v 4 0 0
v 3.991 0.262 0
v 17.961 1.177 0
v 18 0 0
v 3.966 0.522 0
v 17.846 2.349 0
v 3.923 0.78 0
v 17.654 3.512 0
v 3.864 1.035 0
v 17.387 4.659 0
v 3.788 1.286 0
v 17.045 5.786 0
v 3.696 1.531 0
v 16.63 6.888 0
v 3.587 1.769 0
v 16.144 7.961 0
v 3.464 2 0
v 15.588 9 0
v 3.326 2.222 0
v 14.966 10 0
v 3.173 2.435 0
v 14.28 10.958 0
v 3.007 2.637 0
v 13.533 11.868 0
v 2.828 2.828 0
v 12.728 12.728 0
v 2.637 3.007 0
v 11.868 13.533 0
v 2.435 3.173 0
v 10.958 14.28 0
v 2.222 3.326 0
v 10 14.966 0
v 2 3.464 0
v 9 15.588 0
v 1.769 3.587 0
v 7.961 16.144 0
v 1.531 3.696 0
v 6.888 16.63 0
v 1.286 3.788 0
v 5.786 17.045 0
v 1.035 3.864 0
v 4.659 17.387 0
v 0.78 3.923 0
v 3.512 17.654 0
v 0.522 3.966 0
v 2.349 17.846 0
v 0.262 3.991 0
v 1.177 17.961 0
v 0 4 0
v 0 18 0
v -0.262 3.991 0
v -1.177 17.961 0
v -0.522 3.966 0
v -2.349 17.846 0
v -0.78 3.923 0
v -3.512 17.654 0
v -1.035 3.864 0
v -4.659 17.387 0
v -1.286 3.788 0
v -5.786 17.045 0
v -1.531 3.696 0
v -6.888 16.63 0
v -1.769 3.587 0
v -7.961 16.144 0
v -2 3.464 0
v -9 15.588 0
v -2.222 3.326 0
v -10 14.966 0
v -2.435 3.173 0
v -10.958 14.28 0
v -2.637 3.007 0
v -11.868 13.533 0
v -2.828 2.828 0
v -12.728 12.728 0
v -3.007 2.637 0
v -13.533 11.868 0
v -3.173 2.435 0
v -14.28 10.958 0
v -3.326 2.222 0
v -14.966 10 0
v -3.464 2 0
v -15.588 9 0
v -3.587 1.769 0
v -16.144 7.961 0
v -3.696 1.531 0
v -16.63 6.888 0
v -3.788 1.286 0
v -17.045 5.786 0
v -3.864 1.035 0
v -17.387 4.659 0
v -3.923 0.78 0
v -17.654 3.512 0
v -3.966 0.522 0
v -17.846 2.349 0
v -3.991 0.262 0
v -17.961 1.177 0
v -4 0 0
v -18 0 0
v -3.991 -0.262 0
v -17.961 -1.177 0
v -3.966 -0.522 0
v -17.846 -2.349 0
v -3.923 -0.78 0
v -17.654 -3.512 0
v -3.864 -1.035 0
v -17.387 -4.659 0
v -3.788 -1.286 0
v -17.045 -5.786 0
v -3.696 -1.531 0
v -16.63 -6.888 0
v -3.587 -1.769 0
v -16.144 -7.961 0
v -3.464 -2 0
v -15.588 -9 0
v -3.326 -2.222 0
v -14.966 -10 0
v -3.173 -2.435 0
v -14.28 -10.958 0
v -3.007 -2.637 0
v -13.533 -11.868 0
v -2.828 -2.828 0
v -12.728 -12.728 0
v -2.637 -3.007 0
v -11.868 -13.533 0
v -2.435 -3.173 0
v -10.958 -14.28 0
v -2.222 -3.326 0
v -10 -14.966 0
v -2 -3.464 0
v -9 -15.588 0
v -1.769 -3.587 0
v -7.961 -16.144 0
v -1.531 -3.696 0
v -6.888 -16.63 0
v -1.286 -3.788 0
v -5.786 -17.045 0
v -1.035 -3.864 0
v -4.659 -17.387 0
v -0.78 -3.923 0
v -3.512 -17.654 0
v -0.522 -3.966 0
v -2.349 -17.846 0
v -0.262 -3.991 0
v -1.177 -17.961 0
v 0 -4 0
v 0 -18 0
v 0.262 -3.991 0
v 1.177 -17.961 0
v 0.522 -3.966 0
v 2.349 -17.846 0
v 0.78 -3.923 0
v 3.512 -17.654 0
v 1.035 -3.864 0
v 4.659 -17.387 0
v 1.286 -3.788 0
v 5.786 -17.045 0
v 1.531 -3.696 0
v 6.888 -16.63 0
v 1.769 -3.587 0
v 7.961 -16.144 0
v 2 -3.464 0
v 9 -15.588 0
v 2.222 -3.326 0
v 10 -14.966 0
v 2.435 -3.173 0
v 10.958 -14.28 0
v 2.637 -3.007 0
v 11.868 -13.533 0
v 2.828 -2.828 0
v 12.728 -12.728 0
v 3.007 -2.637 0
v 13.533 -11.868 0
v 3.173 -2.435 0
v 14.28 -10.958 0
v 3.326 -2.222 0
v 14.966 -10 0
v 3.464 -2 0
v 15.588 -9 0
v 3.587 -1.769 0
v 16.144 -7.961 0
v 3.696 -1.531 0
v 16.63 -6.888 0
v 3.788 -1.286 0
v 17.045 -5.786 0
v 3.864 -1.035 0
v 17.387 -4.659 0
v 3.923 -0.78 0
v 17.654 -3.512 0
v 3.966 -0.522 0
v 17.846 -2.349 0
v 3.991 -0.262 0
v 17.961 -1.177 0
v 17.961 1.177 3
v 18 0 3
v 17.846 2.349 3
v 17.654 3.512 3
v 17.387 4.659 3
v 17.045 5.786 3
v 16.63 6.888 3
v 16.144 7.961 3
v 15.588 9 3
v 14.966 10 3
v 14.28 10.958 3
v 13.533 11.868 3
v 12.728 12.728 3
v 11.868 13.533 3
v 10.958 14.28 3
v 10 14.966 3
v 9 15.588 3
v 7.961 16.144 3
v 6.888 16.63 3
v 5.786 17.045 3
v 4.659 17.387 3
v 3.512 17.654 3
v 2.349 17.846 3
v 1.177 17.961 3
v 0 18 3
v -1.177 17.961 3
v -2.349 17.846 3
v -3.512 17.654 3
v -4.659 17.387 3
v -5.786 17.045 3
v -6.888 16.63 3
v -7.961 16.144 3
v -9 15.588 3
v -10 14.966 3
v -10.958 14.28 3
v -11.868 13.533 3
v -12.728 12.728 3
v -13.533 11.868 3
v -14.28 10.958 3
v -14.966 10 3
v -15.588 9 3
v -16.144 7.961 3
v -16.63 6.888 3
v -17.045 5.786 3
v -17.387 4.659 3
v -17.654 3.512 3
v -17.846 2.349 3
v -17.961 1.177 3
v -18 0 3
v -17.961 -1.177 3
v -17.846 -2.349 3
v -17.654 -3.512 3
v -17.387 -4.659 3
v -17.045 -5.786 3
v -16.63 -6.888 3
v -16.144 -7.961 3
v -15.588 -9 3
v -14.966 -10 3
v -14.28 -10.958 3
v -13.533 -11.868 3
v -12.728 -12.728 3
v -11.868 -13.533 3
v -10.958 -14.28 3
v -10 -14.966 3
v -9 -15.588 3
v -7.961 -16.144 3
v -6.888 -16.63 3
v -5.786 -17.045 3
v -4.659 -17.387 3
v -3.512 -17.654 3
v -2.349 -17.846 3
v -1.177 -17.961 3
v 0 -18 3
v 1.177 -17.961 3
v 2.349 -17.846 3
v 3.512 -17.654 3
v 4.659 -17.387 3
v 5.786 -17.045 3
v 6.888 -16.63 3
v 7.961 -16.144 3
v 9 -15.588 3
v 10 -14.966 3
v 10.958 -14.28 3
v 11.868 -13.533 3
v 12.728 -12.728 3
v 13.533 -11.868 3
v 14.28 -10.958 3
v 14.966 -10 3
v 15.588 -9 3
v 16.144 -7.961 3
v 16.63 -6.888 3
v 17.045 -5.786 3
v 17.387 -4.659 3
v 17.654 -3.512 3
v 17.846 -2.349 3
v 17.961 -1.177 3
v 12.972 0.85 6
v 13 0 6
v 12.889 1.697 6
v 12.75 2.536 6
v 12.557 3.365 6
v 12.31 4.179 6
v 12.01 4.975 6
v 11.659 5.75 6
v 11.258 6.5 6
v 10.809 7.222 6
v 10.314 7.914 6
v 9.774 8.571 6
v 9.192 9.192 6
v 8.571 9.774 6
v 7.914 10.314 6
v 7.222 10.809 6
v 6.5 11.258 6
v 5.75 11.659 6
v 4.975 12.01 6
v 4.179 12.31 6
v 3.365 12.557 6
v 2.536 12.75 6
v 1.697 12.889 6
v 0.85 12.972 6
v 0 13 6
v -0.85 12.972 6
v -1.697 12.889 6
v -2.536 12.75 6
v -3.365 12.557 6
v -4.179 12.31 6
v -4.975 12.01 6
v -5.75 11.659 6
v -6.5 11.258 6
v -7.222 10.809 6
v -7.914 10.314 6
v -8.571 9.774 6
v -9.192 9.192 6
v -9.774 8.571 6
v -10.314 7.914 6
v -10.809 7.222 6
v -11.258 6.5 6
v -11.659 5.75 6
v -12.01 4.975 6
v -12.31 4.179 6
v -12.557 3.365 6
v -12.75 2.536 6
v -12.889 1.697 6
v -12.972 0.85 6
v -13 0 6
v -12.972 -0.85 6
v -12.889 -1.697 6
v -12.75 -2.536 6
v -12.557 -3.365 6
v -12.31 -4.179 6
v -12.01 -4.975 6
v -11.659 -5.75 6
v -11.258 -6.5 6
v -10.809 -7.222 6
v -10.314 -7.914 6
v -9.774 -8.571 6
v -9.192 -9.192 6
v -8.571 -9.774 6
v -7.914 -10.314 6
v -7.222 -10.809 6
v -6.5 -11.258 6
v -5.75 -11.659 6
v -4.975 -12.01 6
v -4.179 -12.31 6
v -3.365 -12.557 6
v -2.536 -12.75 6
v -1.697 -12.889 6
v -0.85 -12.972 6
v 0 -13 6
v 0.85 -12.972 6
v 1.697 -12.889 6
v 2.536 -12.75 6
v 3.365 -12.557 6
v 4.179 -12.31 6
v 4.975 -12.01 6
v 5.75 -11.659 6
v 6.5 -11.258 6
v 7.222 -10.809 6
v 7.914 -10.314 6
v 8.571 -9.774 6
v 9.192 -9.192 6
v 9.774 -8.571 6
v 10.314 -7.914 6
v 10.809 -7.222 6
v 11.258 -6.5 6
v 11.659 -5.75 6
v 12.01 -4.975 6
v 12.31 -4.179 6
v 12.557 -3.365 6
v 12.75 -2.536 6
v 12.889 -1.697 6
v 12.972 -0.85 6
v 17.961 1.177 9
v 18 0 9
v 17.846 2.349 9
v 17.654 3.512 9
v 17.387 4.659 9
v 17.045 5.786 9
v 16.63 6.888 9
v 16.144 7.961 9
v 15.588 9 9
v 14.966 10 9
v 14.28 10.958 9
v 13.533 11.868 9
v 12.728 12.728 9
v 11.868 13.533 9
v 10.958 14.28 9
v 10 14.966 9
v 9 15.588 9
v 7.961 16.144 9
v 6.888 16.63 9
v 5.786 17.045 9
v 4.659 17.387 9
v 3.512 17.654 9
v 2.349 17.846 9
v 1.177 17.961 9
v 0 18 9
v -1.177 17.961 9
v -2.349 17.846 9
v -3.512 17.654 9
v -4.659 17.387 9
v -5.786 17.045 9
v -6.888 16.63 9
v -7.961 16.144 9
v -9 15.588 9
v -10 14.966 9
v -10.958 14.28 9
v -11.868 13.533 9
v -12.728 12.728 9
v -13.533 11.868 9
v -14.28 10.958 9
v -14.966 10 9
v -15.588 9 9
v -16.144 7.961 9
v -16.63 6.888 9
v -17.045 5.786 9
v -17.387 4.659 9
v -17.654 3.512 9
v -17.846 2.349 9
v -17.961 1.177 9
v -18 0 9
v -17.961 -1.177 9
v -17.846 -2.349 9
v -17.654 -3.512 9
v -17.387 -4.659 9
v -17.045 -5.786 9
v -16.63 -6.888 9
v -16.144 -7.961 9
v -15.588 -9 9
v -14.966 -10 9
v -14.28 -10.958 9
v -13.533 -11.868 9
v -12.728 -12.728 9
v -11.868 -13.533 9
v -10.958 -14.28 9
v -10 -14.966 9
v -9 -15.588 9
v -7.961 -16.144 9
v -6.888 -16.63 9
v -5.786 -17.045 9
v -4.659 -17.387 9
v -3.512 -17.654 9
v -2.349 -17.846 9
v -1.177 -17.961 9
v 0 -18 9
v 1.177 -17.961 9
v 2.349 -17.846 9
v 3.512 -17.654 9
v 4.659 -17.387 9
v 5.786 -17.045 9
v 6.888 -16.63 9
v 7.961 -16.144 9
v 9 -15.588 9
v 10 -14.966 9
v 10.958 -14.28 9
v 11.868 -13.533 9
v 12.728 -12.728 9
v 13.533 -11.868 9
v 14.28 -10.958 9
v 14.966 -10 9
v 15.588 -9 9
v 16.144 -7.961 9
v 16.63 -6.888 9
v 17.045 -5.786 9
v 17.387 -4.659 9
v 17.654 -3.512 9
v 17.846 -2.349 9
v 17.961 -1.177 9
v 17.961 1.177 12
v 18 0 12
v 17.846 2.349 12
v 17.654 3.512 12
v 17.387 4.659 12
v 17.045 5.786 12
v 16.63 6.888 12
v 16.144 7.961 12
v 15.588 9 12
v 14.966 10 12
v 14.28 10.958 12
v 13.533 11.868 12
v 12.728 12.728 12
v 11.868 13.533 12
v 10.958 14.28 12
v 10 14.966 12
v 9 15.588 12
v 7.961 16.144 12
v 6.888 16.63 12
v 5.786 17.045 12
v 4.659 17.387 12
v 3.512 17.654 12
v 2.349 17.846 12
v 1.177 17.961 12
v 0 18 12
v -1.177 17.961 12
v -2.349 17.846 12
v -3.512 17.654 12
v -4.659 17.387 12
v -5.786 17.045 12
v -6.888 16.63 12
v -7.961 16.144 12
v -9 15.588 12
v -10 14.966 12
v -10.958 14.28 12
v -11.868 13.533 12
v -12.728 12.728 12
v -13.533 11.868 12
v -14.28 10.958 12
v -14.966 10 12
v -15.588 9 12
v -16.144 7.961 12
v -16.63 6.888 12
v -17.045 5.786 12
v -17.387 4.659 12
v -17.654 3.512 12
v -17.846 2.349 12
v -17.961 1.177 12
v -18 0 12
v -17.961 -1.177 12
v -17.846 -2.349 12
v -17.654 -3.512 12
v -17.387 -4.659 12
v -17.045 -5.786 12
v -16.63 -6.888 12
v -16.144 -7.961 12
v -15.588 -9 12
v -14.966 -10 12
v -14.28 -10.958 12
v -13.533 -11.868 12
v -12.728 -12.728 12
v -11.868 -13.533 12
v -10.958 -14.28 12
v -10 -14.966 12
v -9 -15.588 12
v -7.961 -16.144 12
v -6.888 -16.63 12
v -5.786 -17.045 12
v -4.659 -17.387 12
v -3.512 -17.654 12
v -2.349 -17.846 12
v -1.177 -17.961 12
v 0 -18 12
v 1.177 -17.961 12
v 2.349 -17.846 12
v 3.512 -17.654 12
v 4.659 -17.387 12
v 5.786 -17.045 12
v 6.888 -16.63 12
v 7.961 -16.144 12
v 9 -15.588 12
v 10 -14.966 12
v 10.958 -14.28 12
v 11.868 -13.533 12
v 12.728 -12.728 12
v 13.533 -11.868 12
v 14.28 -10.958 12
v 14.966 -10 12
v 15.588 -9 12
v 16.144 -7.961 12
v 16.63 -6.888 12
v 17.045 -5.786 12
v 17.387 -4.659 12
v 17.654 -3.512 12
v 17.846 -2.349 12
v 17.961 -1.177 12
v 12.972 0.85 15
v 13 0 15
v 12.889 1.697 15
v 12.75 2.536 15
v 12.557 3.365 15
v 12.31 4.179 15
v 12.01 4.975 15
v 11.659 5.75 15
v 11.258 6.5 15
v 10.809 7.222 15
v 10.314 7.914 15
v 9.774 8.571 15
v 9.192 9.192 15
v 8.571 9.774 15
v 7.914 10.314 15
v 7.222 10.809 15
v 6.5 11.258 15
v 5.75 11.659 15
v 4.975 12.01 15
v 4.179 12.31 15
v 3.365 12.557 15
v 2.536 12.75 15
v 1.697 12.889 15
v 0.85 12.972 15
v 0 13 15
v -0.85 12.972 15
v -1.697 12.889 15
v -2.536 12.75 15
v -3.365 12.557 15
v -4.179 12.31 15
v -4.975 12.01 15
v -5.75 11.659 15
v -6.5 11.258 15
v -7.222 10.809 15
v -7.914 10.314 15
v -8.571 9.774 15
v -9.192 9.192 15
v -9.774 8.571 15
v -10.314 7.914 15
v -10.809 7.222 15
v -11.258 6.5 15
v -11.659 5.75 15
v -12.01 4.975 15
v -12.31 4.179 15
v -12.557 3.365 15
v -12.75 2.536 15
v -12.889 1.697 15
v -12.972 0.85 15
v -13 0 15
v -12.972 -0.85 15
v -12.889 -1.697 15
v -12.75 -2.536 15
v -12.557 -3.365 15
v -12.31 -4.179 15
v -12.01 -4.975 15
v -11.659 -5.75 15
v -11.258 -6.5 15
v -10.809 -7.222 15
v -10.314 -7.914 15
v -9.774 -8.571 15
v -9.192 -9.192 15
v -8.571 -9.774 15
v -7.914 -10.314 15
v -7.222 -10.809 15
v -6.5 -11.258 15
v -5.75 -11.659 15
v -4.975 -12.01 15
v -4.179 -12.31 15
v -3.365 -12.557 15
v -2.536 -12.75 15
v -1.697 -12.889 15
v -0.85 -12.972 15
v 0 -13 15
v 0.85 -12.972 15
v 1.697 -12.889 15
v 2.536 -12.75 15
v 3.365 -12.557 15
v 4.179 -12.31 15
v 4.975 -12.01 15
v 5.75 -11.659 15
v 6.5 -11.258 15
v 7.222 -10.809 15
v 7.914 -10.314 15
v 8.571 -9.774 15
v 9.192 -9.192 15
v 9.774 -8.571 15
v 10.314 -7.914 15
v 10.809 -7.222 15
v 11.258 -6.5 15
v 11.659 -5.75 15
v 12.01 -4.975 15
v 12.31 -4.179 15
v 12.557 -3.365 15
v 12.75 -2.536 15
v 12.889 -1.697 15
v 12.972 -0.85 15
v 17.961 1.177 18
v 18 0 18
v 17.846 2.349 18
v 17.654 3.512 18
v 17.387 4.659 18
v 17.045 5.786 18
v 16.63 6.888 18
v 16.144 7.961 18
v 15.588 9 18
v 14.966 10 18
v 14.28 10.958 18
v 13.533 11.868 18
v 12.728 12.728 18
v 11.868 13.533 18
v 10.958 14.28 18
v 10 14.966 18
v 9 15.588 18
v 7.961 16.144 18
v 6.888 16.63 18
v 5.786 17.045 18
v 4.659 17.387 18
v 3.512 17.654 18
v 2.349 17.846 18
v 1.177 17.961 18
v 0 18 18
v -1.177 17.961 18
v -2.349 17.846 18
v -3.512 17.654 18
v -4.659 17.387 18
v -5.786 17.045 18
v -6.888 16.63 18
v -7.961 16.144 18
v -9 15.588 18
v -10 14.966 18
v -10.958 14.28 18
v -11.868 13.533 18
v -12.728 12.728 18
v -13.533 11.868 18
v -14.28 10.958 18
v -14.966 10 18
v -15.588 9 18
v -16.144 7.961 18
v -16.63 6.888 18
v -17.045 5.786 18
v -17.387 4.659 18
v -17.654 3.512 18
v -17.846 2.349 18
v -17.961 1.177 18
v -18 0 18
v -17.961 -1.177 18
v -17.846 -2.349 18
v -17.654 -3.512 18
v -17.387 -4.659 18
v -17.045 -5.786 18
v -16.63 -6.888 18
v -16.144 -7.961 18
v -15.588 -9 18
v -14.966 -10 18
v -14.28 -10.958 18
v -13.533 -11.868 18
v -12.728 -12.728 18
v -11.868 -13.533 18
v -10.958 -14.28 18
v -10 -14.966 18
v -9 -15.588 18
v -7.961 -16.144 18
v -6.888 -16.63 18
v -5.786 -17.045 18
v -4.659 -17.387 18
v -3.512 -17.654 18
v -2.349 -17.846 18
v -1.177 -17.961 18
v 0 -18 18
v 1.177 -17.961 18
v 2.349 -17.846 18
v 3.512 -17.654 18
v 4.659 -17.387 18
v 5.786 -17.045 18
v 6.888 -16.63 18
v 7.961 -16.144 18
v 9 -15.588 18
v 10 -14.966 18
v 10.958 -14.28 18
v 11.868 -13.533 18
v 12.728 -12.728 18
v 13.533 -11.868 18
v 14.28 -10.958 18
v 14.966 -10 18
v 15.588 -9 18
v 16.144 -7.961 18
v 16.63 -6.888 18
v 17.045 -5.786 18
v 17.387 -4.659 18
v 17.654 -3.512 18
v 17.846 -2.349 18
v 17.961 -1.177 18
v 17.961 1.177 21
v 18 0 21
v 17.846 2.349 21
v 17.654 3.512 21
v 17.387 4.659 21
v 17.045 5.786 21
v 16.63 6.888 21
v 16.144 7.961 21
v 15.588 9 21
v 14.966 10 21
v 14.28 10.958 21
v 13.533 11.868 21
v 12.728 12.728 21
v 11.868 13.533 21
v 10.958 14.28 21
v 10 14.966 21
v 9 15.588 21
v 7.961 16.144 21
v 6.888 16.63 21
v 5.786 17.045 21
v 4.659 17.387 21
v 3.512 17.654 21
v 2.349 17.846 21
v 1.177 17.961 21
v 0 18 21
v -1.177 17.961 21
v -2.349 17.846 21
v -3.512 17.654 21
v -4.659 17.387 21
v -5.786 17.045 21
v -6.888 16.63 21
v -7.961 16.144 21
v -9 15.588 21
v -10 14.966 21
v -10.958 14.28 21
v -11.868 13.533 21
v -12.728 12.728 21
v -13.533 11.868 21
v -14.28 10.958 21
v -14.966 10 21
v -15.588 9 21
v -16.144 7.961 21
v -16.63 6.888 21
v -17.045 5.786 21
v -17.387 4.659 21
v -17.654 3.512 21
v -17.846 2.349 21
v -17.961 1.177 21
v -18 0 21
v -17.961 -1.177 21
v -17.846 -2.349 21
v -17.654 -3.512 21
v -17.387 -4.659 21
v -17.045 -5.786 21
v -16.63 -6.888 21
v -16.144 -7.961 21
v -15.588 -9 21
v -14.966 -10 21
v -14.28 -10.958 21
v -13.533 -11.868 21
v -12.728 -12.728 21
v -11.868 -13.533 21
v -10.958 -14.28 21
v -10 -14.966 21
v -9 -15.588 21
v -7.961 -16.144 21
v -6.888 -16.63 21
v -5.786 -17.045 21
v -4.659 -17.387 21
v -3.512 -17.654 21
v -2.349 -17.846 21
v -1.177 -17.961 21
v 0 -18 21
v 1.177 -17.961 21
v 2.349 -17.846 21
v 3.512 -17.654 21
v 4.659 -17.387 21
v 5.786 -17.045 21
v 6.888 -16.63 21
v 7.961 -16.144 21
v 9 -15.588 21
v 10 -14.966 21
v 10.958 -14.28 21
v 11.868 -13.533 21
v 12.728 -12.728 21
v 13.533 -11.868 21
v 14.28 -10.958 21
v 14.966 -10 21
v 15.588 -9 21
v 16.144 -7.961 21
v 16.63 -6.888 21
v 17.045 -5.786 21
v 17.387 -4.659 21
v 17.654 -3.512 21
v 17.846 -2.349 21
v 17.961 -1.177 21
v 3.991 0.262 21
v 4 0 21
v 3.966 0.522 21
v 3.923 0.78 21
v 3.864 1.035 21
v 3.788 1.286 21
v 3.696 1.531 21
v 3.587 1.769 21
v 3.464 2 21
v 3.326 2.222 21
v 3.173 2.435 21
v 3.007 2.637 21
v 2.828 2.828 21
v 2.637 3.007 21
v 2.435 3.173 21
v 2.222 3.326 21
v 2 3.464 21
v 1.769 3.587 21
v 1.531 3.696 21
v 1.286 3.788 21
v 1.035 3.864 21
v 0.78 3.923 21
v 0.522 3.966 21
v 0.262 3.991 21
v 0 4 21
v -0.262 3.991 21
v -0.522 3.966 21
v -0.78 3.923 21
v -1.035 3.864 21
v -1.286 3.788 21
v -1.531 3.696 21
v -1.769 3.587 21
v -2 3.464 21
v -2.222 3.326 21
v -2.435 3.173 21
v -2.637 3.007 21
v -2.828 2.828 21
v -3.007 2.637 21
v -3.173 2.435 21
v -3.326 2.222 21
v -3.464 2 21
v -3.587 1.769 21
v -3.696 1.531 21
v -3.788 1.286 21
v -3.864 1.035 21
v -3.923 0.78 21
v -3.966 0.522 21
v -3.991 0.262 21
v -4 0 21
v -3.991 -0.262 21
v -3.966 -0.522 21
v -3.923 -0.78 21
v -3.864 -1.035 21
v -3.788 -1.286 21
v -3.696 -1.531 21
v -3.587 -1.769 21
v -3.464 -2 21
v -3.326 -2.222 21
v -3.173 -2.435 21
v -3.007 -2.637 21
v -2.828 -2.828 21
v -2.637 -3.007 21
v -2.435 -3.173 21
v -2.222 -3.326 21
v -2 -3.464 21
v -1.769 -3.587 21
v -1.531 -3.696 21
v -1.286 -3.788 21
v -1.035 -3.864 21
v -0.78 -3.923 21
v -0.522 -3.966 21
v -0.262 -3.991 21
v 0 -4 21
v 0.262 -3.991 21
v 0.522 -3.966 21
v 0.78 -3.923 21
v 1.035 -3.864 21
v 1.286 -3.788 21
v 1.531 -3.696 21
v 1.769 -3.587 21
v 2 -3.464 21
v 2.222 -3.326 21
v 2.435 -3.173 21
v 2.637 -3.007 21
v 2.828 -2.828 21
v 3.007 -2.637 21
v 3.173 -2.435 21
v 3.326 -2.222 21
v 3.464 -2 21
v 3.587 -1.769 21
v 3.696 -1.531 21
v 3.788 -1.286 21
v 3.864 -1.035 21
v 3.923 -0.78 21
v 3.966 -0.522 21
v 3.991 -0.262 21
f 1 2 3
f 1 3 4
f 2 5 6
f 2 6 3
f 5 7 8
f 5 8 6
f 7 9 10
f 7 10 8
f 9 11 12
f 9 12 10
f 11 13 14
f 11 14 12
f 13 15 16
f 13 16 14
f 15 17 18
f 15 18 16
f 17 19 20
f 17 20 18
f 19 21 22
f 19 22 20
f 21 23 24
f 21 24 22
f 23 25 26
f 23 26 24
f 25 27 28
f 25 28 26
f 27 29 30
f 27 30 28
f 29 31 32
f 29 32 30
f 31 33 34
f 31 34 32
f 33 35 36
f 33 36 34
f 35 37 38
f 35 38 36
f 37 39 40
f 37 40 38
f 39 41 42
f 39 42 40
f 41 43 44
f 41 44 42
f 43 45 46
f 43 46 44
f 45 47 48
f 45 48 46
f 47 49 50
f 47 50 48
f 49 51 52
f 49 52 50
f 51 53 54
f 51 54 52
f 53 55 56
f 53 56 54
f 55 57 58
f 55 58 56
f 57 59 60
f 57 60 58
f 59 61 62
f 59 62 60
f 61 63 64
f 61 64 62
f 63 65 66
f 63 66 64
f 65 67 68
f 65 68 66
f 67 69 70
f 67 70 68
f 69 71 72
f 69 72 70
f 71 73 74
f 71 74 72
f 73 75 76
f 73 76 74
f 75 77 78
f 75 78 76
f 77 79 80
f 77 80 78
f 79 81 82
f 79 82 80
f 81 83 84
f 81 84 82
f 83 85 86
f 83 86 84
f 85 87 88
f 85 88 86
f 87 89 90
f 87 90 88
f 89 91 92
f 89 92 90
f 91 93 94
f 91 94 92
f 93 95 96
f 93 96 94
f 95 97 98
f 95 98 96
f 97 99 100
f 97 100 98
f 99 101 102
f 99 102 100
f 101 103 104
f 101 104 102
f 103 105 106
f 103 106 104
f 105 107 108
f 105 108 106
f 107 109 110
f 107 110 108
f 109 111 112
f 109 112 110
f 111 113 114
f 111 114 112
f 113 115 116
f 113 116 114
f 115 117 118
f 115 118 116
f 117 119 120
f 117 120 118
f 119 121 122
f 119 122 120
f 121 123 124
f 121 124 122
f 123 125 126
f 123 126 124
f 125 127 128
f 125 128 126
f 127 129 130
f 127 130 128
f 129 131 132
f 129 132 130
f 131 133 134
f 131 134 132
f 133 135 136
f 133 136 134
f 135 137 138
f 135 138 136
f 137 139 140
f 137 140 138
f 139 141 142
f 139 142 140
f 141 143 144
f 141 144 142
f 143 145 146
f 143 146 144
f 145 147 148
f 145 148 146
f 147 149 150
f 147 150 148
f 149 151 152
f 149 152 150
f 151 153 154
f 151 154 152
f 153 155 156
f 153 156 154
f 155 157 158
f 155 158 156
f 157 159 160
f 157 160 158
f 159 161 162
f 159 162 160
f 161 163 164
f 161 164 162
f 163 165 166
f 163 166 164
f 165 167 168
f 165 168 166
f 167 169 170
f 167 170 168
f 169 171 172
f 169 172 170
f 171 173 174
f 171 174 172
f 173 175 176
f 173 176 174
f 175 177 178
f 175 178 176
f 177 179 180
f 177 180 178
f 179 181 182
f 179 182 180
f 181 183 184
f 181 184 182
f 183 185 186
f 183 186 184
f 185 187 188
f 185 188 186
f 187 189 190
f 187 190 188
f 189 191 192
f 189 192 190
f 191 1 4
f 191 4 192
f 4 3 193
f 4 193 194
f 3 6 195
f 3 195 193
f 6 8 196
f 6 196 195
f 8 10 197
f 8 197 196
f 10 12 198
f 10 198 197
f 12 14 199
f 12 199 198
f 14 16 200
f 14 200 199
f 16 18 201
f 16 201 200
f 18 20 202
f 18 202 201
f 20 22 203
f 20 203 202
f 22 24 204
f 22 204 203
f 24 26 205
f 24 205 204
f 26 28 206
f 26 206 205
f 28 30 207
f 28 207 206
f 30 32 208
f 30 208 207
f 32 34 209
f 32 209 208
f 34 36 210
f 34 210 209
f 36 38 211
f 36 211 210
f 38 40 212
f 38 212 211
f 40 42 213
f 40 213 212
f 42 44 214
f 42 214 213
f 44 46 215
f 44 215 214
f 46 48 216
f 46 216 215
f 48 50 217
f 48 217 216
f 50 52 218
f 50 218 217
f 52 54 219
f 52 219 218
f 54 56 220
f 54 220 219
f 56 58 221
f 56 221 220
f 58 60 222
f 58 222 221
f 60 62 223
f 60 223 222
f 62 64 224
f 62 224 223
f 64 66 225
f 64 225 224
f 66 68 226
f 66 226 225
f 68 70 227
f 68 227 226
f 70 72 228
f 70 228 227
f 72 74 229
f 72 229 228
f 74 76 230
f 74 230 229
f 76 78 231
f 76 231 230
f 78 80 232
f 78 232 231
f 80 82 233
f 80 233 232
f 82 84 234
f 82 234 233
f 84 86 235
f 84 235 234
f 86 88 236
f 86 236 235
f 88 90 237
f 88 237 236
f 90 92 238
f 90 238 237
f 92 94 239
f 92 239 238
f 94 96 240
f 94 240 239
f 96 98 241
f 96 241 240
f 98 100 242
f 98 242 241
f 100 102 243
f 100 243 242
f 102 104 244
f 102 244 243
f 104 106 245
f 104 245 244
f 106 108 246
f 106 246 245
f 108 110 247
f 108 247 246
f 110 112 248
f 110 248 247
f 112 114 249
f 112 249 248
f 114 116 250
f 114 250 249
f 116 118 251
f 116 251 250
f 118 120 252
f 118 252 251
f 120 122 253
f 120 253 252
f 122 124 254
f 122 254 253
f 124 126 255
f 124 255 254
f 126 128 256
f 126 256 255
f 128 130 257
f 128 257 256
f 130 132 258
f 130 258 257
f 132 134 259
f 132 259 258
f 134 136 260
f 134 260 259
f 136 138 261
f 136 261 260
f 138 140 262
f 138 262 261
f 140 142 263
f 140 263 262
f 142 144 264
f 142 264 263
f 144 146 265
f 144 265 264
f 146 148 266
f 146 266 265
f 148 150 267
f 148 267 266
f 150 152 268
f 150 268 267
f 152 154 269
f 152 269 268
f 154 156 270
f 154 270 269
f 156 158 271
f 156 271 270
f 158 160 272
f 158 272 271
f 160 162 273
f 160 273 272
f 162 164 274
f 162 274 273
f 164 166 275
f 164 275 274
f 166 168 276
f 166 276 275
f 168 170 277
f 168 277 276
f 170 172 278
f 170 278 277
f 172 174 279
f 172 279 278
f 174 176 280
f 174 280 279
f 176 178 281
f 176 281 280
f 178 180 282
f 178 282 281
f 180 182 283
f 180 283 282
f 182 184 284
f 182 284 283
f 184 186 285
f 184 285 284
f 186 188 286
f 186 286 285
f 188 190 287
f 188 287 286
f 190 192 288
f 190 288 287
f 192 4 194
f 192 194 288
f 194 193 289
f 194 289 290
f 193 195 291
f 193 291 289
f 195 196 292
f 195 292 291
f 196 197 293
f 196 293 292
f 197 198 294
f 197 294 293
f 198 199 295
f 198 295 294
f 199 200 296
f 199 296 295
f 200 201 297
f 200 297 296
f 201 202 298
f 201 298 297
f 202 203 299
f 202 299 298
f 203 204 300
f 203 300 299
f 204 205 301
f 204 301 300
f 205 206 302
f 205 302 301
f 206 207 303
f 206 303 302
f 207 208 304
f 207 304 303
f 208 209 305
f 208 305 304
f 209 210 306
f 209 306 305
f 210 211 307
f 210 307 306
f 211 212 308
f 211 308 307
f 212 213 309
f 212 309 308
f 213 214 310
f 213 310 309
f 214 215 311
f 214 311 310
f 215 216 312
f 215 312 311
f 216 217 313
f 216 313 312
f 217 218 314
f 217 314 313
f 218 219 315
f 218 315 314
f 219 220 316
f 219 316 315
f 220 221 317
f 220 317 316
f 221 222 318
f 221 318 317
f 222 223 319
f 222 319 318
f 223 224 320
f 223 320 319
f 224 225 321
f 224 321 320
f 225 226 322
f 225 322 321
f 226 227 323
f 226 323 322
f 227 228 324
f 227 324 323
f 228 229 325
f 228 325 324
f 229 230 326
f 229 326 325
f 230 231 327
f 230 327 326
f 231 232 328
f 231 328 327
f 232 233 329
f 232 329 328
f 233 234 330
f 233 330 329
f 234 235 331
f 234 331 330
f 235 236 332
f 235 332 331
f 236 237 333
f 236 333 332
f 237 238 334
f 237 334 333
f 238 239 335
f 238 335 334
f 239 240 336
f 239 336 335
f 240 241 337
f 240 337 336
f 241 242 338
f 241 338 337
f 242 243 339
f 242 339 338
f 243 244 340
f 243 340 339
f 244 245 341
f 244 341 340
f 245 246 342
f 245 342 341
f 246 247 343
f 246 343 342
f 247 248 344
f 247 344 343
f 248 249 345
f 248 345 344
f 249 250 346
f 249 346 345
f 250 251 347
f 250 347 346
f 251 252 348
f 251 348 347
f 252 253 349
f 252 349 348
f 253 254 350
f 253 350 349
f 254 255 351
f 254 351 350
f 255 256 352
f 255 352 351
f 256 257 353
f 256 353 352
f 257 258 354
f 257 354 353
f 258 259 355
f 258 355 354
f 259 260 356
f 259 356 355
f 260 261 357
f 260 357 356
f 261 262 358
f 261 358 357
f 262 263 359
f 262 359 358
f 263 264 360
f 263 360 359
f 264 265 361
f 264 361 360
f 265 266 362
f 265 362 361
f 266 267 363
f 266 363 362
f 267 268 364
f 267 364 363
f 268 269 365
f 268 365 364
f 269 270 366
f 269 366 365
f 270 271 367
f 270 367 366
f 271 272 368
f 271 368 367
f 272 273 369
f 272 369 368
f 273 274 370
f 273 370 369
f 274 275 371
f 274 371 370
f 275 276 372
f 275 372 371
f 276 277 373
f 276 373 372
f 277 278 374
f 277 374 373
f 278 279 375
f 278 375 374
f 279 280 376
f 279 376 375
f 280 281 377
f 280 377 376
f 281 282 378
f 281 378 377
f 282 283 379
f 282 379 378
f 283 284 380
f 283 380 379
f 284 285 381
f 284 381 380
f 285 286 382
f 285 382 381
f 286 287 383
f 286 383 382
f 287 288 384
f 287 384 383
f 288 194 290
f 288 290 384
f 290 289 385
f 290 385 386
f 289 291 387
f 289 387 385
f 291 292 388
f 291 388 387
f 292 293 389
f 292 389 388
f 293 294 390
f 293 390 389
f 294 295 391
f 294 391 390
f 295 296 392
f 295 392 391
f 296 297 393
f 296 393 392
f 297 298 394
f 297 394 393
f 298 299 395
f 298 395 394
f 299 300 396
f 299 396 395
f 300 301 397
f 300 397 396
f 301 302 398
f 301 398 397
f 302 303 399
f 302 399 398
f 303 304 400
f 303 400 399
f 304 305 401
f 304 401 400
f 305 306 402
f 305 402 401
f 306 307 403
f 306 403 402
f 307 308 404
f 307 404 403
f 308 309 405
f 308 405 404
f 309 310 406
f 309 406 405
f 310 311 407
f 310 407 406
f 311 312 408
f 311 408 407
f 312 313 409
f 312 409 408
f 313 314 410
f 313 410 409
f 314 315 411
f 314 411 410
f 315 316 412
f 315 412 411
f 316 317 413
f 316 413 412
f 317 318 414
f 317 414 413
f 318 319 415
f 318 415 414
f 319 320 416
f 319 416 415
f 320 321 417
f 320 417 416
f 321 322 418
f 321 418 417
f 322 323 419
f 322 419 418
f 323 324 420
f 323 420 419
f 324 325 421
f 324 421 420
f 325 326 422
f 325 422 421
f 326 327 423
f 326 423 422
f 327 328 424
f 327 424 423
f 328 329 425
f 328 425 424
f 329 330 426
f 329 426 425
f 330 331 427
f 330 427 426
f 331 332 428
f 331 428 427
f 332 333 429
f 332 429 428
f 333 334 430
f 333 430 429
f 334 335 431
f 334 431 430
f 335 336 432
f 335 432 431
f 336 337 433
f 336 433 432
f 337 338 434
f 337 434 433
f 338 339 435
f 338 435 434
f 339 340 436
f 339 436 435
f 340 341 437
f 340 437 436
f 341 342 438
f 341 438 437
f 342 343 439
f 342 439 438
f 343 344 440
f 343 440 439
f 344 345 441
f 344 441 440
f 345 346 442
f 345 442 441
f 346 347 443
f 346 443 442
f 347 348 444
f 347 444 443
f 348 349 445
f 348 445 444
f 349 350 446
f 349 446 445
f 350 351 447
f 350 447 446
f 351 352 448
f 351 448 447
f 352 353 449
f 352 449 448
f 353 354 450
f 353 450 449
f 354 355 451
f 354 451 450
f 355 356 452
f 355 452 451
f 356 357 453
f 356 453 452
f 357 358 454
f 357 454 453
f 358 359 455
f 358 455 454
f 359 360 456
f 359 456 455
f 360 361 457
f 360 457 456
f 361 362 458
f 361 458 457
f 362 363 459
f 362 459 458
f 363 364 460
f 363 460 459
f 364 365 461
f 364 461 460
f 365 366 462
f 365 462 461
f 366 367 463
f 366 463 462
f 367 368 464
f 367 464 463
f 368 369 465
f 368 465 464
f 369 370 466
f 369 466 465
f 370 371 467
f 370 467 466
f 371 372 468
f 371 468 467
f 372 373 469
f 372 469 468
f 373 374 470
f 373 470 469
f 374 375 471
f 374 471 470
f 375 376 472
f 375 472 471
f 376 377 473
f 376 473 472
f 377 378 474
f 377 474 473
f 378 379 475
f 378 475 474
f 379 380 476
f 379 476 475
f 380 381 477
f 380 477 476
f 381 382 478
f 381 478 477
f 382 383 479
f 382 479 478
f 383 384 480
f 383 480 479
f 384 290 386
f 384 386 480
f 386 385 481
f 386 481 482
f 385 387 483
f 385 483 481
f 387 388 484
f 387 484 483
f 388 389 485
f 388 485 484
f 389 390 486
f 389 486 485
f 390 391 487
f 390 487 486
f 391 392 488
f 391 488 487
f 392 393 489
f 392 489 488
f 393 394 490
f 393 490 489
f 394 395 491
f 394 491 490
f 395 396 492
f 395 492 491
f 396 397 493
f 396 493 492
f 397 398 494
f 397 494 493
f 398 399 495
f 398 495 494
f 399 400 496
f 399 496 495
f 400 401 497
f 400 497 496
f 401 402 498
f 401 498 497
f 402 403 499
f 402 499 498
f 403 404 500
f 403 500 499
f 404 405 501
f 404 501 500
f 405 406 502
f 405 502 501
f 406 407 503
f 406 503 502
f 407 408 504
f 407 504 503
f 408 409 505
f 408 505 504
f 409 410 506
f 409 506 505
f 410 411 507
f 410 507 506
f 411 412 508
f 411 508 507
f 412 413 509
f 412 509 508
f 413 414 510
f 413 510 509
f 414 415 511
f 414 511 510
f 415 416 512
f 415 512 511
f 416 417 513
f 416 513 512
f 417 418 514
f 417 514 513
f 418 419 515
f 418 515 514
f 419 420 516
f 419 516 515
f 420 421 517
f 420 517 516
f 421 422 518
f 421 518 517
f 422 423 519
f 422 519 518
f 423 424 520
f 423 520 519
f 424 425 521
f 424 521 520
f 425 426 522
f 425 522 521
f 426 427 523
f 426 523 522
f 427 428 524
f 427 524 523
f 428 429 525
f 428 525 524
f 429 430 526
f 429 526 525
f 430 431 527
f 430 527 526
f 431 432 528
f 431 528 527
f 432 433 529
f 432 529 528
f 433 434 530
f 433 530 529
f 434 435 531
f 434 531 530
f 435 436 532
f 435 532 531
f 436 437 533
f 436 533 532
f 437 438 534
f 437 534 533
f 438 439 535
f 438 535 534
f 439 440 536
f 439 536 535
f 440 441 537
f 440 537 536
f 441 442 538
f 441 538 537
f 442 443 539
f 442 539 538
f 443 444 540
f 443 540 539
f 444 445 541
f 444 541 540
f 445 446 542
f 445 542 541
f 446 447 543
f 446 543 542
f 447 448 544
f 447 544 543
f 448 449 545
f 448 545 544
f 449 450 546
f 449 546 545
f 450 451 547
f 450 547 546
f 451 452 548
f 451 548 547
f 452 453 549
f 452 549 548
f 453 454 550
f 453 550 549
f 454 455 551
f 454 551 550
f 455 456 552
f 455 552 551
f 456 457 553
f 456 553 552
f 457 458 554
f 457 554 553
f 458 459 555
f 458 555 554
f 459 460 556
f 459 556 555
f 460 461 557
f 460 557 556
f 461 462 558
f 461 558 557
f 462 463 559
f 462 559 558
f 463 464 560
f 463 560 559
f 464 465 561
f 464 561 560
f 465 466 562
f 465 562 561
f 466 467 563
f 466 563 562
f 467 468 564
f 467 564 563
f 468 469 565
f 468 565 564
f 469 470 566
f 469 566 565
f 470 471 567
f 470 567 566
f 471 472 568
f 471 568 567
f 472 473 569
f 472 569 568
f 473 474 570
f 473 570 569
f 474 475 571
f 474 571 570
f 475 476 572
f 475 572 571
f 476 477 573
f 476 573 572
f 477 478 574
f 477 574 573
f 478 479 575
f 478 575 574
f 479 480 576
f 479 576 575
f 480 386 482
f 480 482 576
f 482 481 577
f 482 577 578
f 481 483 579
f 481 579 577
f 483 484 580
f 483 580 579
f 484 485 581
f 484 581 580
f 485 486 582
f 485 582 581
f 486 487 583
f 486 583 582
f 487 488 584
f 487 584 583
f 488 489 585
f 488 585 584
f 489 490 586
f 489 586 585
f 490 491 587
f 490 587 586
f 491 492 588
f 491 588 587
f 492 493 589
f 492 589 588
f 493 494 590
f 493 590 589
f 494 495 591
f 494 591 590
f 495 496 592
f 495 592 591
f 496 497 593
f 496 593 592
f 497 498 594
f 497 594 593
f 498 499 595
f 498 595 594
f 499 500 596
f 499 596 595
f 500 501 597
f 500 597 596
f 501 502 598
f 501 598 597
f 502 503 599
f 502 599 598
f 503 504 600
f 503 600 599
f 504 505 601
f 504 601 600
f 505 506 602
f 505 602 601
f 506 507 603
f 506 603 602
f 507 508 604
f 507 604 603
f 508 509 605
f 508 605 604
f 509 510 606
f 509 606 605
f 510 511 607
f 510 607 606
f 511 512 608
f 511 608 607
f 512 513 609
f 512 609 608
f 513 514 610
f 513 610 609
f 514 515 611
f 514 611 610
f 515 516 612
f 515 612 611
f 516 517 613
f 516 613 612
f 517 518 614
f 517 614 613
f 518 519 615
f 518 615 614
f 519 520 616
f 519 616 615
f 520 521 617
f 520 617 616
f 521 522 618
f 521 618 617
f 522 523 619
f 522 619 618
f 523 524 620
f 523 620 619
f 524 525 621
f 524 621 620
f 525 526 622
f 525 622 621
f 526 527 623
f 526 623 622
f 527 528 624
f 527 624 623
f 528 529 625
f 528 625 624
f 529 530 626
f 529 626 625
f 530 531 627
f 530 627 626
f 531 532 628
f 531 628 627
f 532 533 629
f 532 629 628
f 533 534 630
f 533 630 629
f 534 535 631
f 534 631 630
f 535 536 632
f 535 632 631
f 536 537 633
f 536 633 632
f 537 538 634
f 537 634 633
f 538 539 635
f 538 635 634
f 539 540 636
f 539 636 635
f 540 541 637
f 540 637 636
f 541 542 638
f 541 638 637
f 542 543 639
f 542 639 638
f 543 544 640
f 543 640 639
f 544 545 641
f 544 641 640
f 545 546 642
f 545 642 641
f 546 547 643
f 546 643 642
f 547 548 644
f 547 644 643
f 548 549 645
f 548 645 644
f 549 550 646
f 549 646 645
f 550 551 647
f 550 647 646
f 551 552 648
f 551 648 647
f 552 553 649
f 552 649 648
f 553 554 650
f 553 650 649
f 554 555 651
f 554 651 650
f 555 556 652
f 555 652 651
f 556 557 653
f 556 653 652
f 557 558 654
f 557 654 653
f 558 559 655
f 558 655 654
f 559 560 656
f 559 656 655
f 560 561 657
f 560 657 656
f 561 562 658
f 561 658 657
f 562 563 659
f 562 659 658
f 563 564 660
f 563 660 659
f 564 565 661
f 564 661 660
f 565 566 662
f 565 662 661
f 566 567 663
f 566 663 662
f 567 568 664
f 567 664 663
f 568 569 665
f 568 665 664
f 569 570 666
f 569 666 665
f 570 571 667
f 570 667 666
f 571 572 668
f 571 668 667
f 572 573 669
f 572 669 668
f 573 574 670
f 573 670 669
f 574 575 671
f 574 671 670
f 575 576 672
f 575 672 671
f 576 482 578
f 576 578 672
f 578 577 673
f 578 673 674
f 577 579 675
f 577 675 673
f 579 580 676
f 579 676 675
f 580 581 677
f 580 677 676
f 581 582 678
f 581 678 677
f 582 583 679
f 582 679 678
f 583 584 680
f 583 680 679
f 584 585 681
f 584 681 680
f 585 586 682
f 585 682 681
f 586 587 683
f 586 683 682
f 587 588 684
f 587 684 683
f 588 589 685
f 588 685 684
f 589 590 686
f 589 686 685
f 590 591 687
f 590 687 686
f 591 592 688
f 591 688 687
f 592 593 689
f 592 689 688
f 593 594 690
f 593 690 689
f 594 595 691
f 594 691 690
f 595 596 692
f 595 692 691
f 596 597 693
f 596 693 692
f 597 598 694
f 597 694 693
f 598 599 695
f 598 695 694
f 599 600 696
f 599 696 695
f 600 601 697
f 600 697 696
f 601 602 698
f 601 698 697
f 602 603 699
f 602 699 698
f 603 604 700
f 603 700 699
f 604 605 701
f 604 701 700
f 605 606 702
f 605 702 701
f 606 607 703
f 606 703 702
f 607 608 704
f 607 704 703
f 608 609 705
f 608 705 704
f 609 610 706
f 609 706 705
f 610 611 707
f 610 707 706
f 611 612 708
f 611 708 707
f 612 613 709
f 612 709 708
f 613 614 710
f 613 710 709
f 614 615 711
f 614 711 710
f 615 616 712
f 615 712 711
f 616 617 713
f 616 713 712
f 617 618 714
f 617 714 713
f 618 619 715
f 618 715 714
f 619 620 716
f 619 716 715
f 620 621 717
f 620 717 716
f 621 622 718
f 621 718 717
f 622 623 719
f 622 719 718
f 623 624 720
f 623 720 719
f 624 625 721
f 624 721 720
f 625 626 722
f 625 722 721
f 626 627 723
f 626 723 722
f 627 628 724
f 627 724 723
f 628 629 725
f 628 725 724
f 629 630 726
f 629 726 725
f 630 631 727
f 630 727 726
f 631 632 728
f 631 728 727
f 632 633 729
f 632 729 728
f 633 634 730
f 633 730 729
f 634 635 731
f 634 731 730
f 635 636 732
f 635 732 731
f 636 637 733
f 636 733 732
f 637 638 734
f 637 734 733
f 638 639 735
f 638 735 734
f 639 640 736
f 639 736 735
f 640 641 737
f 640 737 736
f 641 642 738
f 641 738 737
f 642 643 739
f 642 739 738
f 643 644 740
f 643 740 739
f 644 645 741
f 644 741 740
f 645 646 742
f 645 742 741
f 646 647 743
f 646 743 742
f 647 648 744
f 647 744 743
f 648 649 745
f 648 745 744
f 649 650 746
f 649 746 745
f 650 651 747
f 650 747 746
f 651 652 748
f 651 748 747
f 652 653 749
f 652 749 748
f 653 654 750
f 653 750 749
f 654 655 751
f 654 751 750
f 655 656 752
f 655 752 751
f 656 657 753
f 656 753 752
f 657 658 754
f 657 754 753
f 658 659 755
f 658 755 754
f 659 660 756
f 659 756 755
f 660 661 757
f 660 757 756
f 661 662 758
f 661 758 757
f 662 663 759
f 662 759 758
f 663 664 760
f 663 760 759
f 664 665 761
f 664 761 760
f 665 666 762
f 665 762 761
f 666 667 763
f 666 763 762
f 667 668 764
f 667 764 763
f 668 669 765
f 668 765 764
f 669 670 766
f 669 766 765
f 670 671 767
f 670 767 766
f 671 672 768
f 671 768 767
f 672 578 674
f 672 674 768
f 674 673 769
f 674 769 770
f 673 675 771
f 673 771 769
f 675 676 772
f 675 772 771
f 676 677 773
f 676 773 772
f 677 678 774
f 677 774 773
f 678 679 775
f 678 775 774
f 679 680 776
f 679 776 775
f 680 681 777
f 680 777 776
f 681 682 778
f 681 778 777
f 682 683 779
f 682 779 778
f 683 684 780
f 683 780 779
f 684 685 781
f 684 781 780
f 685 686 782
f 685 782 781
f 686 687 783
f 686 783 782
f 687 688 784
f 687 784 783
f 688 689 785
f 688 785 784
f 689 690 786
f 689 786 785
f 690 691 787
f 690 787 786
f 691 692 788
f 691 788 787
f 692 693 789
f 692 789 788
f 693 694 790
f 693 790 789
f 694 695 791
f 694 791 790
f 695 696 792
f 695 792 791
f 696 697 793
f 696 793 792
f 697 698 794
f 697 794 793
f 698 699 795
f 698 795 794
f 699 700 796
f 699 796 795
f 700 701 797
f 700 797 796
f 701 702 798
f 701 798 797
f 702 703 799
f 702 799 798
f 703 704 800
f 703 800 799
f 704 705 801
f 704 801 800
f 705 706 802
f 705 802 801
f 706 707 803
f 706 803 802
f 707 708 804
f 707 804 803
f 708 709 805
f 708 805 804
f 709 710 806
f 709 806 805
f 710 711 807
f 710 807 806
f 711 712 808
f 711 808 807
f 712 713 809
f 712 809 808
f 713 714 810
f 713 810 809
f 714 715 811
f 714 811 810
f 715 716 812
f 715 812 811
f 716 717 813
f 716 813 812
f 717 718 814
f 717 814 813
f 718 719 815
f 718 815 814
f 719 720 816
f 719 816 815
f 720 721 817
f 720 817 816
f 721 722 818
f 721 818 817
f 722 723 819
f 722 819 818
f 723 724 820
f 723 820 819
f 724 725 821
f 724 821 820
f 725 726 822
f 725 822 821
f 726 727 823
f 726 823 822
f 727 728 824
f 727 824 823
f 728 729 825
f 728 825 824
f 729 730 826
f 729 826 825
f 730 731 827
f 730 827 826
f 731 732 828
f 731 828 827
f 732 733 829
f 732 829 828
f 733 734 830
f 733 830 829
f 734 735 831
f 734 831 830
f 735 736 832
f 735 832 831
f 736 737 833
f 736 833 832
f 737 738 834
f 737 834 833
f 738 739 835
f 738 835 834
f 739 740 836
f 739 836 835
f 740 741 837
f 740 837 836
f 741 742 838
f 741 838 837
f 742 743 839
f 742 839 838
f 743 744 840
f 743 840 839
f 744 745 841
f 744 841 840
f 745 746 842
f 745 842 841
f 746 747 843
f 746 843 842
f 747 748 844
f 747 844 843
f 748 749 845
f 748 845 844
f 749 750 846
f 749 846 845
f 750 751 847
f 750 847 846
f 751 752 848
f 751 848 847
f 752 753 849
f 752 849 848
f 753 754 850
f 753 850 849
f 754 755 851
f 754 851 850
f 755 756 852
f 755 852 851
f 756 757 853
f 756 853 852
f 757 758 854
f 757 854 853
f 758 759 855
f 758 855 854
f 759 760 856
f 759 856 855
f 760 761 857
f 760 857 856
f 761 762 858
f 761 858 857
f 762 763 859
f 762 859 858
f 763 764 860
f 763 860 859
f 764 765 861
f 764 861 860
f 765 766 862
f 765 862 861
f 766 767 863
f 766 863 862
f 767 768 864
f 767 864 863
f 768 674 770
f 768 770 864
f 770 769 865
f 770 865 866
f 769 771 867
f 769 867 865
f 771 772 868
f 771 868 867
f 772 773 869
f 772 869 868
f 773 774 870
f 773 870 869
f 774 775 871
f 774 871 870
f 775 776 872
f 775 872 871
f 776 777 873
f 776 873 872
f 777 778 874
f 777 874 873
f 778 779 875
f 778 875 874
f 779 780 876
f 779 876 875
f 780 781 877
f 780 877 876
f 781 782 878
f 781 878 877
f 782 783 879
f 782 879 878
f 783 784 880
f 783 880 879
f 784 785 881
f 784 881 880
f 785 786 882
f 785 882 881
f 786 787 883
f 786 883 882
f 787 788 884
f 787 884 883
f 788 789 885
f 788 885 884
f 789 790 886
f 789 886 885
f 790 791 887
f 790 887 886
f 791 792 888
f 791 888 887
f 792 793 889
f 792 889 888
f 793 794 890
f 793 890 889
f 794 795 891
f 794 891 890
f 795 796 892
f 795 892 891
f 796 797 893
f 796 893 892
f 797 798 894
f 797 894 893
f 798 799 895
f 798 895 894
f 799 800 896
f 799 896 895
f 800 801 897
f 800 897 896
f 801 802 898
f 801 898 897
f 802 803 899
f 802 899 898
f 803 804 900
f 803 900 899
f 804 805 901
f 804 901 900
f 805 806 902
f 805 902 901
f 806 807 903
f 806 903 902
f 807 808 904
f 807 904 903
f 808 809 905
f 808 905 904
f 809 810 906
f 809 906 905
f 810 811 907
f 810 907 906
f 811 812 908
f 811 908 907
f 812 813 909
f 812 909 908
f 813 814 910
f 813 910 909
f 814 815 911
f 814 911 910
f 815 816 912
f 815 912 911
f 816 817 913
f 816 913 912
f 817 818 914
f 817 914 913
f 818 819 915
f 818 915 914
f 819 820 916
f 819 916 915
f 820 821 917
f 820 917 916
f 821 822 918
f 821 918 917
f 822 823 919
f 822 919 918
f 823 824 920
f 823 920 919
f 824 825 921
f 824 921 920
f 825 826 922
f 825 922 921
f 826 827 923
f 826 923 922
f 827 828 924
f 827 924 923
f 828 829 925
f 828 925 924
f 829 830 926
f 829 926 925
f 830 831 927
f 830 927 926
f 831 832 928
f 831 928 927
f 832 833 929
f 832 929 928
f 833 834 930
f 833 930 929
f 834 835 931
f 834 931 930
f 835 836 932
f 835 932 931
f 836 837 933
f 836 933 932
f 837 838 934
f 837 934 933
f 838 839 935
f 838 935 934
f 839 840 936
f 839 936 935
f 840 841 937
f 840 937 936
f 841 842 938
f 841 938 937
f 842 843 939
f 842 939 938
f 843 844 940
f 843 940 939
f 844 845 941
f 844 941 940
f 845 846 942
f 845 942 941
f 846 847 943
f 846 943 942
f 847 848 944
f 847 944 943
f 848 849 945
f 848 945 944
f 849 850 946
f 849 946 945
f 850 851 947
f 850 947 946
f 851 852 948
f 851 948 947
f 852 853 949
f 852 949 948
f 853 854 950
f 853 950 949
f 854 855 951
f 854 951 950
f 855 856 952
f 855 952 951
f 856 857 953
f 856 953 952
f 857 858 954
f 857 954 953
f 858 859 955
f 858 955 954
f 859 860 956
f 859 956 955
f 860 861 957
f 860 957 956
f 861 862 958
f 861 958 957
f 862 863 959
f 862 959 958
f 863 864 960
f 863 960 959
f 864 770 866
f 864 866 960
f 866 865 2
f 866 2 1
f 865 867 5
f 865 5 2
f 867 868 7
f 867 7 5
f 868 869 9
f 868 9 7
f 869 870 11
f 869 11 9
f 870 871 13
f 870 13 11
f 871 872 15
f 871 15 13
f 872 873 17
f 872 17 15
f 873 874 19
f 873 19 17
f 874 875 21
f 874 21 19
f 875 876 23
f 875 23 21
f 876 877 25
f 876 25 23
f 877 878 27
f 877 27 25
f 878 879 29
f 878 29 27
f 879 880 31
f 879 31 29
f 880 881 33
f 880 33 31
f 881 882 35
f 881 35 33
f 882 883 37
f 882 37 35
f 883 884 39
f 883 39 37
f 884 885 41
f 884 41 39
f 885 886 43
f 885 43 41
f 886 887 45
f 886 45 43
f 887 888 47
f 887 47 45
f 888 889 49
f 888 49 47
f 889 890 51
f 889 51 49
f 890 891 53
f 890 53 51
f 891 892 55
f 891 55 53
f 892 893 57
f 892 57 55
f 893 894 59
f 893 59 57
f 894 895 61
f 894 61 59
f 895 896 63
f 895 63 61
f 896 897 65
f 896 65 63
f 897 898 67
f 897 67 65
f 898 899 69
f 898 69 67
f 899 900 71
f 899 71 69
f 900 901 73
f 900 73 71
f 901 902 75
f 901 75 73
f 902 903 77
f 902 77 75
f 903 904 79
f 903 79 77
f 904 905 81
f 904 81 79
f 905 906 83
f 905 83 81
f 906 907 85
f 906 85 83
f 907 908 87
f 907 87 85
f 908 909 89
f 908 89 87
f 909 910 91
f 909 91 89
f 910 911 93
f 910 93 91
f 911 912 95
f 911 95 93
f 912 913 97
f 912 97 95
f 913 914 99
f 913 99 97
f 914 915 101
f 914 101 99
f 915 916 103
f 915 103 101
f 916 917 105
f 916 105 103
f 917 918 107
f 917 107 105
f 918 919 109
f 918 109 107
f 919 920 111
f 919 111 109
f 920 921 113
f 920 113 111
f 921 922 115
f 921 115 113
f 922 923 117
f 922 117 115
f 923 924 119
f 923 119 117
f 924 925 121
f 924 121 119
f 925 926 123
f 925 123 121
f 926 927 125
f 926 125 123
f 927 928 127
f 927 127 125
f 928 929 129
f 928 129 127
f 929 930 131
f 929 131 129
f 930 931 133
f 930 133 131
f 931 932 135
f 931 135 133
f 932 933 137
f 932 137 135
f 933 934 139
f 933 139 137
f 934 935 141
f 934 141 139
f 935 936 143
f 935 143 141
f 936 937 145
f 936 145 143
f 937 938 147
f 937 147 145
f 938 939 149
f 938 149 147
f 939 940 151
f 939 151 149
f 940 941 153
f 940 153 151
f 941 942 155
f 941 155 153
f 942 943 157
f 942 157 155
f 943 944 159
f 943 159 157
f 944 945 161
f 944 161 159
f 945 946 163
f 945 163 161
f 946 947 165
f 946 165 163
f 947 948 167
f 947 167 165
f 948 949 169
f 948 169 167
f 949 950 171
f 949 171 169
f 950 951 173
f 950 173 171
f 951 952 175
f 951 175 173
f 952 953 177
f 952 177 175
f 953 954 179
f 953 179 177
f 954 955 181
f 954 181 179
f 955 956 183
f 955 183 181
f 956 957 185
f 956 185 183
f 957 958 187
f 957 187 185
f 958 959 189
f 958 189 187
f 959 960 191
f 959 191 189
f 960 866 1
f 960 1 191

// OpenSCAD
// Original MechIntel educational model. CC0-1.0. Units: mm.
// Not a standardized or load-rated component.
$fn=96;
// Section points: [radius, height], mm. Edit to change the profile.
section=[[4, 0], [18, 0], [18, 3], [13, 6], [18, 9], [18, 12], [13, 15], [18, 18], [18, 21], [4, 21]];
rotate_extrude($fn=96) polygon(points=section);
